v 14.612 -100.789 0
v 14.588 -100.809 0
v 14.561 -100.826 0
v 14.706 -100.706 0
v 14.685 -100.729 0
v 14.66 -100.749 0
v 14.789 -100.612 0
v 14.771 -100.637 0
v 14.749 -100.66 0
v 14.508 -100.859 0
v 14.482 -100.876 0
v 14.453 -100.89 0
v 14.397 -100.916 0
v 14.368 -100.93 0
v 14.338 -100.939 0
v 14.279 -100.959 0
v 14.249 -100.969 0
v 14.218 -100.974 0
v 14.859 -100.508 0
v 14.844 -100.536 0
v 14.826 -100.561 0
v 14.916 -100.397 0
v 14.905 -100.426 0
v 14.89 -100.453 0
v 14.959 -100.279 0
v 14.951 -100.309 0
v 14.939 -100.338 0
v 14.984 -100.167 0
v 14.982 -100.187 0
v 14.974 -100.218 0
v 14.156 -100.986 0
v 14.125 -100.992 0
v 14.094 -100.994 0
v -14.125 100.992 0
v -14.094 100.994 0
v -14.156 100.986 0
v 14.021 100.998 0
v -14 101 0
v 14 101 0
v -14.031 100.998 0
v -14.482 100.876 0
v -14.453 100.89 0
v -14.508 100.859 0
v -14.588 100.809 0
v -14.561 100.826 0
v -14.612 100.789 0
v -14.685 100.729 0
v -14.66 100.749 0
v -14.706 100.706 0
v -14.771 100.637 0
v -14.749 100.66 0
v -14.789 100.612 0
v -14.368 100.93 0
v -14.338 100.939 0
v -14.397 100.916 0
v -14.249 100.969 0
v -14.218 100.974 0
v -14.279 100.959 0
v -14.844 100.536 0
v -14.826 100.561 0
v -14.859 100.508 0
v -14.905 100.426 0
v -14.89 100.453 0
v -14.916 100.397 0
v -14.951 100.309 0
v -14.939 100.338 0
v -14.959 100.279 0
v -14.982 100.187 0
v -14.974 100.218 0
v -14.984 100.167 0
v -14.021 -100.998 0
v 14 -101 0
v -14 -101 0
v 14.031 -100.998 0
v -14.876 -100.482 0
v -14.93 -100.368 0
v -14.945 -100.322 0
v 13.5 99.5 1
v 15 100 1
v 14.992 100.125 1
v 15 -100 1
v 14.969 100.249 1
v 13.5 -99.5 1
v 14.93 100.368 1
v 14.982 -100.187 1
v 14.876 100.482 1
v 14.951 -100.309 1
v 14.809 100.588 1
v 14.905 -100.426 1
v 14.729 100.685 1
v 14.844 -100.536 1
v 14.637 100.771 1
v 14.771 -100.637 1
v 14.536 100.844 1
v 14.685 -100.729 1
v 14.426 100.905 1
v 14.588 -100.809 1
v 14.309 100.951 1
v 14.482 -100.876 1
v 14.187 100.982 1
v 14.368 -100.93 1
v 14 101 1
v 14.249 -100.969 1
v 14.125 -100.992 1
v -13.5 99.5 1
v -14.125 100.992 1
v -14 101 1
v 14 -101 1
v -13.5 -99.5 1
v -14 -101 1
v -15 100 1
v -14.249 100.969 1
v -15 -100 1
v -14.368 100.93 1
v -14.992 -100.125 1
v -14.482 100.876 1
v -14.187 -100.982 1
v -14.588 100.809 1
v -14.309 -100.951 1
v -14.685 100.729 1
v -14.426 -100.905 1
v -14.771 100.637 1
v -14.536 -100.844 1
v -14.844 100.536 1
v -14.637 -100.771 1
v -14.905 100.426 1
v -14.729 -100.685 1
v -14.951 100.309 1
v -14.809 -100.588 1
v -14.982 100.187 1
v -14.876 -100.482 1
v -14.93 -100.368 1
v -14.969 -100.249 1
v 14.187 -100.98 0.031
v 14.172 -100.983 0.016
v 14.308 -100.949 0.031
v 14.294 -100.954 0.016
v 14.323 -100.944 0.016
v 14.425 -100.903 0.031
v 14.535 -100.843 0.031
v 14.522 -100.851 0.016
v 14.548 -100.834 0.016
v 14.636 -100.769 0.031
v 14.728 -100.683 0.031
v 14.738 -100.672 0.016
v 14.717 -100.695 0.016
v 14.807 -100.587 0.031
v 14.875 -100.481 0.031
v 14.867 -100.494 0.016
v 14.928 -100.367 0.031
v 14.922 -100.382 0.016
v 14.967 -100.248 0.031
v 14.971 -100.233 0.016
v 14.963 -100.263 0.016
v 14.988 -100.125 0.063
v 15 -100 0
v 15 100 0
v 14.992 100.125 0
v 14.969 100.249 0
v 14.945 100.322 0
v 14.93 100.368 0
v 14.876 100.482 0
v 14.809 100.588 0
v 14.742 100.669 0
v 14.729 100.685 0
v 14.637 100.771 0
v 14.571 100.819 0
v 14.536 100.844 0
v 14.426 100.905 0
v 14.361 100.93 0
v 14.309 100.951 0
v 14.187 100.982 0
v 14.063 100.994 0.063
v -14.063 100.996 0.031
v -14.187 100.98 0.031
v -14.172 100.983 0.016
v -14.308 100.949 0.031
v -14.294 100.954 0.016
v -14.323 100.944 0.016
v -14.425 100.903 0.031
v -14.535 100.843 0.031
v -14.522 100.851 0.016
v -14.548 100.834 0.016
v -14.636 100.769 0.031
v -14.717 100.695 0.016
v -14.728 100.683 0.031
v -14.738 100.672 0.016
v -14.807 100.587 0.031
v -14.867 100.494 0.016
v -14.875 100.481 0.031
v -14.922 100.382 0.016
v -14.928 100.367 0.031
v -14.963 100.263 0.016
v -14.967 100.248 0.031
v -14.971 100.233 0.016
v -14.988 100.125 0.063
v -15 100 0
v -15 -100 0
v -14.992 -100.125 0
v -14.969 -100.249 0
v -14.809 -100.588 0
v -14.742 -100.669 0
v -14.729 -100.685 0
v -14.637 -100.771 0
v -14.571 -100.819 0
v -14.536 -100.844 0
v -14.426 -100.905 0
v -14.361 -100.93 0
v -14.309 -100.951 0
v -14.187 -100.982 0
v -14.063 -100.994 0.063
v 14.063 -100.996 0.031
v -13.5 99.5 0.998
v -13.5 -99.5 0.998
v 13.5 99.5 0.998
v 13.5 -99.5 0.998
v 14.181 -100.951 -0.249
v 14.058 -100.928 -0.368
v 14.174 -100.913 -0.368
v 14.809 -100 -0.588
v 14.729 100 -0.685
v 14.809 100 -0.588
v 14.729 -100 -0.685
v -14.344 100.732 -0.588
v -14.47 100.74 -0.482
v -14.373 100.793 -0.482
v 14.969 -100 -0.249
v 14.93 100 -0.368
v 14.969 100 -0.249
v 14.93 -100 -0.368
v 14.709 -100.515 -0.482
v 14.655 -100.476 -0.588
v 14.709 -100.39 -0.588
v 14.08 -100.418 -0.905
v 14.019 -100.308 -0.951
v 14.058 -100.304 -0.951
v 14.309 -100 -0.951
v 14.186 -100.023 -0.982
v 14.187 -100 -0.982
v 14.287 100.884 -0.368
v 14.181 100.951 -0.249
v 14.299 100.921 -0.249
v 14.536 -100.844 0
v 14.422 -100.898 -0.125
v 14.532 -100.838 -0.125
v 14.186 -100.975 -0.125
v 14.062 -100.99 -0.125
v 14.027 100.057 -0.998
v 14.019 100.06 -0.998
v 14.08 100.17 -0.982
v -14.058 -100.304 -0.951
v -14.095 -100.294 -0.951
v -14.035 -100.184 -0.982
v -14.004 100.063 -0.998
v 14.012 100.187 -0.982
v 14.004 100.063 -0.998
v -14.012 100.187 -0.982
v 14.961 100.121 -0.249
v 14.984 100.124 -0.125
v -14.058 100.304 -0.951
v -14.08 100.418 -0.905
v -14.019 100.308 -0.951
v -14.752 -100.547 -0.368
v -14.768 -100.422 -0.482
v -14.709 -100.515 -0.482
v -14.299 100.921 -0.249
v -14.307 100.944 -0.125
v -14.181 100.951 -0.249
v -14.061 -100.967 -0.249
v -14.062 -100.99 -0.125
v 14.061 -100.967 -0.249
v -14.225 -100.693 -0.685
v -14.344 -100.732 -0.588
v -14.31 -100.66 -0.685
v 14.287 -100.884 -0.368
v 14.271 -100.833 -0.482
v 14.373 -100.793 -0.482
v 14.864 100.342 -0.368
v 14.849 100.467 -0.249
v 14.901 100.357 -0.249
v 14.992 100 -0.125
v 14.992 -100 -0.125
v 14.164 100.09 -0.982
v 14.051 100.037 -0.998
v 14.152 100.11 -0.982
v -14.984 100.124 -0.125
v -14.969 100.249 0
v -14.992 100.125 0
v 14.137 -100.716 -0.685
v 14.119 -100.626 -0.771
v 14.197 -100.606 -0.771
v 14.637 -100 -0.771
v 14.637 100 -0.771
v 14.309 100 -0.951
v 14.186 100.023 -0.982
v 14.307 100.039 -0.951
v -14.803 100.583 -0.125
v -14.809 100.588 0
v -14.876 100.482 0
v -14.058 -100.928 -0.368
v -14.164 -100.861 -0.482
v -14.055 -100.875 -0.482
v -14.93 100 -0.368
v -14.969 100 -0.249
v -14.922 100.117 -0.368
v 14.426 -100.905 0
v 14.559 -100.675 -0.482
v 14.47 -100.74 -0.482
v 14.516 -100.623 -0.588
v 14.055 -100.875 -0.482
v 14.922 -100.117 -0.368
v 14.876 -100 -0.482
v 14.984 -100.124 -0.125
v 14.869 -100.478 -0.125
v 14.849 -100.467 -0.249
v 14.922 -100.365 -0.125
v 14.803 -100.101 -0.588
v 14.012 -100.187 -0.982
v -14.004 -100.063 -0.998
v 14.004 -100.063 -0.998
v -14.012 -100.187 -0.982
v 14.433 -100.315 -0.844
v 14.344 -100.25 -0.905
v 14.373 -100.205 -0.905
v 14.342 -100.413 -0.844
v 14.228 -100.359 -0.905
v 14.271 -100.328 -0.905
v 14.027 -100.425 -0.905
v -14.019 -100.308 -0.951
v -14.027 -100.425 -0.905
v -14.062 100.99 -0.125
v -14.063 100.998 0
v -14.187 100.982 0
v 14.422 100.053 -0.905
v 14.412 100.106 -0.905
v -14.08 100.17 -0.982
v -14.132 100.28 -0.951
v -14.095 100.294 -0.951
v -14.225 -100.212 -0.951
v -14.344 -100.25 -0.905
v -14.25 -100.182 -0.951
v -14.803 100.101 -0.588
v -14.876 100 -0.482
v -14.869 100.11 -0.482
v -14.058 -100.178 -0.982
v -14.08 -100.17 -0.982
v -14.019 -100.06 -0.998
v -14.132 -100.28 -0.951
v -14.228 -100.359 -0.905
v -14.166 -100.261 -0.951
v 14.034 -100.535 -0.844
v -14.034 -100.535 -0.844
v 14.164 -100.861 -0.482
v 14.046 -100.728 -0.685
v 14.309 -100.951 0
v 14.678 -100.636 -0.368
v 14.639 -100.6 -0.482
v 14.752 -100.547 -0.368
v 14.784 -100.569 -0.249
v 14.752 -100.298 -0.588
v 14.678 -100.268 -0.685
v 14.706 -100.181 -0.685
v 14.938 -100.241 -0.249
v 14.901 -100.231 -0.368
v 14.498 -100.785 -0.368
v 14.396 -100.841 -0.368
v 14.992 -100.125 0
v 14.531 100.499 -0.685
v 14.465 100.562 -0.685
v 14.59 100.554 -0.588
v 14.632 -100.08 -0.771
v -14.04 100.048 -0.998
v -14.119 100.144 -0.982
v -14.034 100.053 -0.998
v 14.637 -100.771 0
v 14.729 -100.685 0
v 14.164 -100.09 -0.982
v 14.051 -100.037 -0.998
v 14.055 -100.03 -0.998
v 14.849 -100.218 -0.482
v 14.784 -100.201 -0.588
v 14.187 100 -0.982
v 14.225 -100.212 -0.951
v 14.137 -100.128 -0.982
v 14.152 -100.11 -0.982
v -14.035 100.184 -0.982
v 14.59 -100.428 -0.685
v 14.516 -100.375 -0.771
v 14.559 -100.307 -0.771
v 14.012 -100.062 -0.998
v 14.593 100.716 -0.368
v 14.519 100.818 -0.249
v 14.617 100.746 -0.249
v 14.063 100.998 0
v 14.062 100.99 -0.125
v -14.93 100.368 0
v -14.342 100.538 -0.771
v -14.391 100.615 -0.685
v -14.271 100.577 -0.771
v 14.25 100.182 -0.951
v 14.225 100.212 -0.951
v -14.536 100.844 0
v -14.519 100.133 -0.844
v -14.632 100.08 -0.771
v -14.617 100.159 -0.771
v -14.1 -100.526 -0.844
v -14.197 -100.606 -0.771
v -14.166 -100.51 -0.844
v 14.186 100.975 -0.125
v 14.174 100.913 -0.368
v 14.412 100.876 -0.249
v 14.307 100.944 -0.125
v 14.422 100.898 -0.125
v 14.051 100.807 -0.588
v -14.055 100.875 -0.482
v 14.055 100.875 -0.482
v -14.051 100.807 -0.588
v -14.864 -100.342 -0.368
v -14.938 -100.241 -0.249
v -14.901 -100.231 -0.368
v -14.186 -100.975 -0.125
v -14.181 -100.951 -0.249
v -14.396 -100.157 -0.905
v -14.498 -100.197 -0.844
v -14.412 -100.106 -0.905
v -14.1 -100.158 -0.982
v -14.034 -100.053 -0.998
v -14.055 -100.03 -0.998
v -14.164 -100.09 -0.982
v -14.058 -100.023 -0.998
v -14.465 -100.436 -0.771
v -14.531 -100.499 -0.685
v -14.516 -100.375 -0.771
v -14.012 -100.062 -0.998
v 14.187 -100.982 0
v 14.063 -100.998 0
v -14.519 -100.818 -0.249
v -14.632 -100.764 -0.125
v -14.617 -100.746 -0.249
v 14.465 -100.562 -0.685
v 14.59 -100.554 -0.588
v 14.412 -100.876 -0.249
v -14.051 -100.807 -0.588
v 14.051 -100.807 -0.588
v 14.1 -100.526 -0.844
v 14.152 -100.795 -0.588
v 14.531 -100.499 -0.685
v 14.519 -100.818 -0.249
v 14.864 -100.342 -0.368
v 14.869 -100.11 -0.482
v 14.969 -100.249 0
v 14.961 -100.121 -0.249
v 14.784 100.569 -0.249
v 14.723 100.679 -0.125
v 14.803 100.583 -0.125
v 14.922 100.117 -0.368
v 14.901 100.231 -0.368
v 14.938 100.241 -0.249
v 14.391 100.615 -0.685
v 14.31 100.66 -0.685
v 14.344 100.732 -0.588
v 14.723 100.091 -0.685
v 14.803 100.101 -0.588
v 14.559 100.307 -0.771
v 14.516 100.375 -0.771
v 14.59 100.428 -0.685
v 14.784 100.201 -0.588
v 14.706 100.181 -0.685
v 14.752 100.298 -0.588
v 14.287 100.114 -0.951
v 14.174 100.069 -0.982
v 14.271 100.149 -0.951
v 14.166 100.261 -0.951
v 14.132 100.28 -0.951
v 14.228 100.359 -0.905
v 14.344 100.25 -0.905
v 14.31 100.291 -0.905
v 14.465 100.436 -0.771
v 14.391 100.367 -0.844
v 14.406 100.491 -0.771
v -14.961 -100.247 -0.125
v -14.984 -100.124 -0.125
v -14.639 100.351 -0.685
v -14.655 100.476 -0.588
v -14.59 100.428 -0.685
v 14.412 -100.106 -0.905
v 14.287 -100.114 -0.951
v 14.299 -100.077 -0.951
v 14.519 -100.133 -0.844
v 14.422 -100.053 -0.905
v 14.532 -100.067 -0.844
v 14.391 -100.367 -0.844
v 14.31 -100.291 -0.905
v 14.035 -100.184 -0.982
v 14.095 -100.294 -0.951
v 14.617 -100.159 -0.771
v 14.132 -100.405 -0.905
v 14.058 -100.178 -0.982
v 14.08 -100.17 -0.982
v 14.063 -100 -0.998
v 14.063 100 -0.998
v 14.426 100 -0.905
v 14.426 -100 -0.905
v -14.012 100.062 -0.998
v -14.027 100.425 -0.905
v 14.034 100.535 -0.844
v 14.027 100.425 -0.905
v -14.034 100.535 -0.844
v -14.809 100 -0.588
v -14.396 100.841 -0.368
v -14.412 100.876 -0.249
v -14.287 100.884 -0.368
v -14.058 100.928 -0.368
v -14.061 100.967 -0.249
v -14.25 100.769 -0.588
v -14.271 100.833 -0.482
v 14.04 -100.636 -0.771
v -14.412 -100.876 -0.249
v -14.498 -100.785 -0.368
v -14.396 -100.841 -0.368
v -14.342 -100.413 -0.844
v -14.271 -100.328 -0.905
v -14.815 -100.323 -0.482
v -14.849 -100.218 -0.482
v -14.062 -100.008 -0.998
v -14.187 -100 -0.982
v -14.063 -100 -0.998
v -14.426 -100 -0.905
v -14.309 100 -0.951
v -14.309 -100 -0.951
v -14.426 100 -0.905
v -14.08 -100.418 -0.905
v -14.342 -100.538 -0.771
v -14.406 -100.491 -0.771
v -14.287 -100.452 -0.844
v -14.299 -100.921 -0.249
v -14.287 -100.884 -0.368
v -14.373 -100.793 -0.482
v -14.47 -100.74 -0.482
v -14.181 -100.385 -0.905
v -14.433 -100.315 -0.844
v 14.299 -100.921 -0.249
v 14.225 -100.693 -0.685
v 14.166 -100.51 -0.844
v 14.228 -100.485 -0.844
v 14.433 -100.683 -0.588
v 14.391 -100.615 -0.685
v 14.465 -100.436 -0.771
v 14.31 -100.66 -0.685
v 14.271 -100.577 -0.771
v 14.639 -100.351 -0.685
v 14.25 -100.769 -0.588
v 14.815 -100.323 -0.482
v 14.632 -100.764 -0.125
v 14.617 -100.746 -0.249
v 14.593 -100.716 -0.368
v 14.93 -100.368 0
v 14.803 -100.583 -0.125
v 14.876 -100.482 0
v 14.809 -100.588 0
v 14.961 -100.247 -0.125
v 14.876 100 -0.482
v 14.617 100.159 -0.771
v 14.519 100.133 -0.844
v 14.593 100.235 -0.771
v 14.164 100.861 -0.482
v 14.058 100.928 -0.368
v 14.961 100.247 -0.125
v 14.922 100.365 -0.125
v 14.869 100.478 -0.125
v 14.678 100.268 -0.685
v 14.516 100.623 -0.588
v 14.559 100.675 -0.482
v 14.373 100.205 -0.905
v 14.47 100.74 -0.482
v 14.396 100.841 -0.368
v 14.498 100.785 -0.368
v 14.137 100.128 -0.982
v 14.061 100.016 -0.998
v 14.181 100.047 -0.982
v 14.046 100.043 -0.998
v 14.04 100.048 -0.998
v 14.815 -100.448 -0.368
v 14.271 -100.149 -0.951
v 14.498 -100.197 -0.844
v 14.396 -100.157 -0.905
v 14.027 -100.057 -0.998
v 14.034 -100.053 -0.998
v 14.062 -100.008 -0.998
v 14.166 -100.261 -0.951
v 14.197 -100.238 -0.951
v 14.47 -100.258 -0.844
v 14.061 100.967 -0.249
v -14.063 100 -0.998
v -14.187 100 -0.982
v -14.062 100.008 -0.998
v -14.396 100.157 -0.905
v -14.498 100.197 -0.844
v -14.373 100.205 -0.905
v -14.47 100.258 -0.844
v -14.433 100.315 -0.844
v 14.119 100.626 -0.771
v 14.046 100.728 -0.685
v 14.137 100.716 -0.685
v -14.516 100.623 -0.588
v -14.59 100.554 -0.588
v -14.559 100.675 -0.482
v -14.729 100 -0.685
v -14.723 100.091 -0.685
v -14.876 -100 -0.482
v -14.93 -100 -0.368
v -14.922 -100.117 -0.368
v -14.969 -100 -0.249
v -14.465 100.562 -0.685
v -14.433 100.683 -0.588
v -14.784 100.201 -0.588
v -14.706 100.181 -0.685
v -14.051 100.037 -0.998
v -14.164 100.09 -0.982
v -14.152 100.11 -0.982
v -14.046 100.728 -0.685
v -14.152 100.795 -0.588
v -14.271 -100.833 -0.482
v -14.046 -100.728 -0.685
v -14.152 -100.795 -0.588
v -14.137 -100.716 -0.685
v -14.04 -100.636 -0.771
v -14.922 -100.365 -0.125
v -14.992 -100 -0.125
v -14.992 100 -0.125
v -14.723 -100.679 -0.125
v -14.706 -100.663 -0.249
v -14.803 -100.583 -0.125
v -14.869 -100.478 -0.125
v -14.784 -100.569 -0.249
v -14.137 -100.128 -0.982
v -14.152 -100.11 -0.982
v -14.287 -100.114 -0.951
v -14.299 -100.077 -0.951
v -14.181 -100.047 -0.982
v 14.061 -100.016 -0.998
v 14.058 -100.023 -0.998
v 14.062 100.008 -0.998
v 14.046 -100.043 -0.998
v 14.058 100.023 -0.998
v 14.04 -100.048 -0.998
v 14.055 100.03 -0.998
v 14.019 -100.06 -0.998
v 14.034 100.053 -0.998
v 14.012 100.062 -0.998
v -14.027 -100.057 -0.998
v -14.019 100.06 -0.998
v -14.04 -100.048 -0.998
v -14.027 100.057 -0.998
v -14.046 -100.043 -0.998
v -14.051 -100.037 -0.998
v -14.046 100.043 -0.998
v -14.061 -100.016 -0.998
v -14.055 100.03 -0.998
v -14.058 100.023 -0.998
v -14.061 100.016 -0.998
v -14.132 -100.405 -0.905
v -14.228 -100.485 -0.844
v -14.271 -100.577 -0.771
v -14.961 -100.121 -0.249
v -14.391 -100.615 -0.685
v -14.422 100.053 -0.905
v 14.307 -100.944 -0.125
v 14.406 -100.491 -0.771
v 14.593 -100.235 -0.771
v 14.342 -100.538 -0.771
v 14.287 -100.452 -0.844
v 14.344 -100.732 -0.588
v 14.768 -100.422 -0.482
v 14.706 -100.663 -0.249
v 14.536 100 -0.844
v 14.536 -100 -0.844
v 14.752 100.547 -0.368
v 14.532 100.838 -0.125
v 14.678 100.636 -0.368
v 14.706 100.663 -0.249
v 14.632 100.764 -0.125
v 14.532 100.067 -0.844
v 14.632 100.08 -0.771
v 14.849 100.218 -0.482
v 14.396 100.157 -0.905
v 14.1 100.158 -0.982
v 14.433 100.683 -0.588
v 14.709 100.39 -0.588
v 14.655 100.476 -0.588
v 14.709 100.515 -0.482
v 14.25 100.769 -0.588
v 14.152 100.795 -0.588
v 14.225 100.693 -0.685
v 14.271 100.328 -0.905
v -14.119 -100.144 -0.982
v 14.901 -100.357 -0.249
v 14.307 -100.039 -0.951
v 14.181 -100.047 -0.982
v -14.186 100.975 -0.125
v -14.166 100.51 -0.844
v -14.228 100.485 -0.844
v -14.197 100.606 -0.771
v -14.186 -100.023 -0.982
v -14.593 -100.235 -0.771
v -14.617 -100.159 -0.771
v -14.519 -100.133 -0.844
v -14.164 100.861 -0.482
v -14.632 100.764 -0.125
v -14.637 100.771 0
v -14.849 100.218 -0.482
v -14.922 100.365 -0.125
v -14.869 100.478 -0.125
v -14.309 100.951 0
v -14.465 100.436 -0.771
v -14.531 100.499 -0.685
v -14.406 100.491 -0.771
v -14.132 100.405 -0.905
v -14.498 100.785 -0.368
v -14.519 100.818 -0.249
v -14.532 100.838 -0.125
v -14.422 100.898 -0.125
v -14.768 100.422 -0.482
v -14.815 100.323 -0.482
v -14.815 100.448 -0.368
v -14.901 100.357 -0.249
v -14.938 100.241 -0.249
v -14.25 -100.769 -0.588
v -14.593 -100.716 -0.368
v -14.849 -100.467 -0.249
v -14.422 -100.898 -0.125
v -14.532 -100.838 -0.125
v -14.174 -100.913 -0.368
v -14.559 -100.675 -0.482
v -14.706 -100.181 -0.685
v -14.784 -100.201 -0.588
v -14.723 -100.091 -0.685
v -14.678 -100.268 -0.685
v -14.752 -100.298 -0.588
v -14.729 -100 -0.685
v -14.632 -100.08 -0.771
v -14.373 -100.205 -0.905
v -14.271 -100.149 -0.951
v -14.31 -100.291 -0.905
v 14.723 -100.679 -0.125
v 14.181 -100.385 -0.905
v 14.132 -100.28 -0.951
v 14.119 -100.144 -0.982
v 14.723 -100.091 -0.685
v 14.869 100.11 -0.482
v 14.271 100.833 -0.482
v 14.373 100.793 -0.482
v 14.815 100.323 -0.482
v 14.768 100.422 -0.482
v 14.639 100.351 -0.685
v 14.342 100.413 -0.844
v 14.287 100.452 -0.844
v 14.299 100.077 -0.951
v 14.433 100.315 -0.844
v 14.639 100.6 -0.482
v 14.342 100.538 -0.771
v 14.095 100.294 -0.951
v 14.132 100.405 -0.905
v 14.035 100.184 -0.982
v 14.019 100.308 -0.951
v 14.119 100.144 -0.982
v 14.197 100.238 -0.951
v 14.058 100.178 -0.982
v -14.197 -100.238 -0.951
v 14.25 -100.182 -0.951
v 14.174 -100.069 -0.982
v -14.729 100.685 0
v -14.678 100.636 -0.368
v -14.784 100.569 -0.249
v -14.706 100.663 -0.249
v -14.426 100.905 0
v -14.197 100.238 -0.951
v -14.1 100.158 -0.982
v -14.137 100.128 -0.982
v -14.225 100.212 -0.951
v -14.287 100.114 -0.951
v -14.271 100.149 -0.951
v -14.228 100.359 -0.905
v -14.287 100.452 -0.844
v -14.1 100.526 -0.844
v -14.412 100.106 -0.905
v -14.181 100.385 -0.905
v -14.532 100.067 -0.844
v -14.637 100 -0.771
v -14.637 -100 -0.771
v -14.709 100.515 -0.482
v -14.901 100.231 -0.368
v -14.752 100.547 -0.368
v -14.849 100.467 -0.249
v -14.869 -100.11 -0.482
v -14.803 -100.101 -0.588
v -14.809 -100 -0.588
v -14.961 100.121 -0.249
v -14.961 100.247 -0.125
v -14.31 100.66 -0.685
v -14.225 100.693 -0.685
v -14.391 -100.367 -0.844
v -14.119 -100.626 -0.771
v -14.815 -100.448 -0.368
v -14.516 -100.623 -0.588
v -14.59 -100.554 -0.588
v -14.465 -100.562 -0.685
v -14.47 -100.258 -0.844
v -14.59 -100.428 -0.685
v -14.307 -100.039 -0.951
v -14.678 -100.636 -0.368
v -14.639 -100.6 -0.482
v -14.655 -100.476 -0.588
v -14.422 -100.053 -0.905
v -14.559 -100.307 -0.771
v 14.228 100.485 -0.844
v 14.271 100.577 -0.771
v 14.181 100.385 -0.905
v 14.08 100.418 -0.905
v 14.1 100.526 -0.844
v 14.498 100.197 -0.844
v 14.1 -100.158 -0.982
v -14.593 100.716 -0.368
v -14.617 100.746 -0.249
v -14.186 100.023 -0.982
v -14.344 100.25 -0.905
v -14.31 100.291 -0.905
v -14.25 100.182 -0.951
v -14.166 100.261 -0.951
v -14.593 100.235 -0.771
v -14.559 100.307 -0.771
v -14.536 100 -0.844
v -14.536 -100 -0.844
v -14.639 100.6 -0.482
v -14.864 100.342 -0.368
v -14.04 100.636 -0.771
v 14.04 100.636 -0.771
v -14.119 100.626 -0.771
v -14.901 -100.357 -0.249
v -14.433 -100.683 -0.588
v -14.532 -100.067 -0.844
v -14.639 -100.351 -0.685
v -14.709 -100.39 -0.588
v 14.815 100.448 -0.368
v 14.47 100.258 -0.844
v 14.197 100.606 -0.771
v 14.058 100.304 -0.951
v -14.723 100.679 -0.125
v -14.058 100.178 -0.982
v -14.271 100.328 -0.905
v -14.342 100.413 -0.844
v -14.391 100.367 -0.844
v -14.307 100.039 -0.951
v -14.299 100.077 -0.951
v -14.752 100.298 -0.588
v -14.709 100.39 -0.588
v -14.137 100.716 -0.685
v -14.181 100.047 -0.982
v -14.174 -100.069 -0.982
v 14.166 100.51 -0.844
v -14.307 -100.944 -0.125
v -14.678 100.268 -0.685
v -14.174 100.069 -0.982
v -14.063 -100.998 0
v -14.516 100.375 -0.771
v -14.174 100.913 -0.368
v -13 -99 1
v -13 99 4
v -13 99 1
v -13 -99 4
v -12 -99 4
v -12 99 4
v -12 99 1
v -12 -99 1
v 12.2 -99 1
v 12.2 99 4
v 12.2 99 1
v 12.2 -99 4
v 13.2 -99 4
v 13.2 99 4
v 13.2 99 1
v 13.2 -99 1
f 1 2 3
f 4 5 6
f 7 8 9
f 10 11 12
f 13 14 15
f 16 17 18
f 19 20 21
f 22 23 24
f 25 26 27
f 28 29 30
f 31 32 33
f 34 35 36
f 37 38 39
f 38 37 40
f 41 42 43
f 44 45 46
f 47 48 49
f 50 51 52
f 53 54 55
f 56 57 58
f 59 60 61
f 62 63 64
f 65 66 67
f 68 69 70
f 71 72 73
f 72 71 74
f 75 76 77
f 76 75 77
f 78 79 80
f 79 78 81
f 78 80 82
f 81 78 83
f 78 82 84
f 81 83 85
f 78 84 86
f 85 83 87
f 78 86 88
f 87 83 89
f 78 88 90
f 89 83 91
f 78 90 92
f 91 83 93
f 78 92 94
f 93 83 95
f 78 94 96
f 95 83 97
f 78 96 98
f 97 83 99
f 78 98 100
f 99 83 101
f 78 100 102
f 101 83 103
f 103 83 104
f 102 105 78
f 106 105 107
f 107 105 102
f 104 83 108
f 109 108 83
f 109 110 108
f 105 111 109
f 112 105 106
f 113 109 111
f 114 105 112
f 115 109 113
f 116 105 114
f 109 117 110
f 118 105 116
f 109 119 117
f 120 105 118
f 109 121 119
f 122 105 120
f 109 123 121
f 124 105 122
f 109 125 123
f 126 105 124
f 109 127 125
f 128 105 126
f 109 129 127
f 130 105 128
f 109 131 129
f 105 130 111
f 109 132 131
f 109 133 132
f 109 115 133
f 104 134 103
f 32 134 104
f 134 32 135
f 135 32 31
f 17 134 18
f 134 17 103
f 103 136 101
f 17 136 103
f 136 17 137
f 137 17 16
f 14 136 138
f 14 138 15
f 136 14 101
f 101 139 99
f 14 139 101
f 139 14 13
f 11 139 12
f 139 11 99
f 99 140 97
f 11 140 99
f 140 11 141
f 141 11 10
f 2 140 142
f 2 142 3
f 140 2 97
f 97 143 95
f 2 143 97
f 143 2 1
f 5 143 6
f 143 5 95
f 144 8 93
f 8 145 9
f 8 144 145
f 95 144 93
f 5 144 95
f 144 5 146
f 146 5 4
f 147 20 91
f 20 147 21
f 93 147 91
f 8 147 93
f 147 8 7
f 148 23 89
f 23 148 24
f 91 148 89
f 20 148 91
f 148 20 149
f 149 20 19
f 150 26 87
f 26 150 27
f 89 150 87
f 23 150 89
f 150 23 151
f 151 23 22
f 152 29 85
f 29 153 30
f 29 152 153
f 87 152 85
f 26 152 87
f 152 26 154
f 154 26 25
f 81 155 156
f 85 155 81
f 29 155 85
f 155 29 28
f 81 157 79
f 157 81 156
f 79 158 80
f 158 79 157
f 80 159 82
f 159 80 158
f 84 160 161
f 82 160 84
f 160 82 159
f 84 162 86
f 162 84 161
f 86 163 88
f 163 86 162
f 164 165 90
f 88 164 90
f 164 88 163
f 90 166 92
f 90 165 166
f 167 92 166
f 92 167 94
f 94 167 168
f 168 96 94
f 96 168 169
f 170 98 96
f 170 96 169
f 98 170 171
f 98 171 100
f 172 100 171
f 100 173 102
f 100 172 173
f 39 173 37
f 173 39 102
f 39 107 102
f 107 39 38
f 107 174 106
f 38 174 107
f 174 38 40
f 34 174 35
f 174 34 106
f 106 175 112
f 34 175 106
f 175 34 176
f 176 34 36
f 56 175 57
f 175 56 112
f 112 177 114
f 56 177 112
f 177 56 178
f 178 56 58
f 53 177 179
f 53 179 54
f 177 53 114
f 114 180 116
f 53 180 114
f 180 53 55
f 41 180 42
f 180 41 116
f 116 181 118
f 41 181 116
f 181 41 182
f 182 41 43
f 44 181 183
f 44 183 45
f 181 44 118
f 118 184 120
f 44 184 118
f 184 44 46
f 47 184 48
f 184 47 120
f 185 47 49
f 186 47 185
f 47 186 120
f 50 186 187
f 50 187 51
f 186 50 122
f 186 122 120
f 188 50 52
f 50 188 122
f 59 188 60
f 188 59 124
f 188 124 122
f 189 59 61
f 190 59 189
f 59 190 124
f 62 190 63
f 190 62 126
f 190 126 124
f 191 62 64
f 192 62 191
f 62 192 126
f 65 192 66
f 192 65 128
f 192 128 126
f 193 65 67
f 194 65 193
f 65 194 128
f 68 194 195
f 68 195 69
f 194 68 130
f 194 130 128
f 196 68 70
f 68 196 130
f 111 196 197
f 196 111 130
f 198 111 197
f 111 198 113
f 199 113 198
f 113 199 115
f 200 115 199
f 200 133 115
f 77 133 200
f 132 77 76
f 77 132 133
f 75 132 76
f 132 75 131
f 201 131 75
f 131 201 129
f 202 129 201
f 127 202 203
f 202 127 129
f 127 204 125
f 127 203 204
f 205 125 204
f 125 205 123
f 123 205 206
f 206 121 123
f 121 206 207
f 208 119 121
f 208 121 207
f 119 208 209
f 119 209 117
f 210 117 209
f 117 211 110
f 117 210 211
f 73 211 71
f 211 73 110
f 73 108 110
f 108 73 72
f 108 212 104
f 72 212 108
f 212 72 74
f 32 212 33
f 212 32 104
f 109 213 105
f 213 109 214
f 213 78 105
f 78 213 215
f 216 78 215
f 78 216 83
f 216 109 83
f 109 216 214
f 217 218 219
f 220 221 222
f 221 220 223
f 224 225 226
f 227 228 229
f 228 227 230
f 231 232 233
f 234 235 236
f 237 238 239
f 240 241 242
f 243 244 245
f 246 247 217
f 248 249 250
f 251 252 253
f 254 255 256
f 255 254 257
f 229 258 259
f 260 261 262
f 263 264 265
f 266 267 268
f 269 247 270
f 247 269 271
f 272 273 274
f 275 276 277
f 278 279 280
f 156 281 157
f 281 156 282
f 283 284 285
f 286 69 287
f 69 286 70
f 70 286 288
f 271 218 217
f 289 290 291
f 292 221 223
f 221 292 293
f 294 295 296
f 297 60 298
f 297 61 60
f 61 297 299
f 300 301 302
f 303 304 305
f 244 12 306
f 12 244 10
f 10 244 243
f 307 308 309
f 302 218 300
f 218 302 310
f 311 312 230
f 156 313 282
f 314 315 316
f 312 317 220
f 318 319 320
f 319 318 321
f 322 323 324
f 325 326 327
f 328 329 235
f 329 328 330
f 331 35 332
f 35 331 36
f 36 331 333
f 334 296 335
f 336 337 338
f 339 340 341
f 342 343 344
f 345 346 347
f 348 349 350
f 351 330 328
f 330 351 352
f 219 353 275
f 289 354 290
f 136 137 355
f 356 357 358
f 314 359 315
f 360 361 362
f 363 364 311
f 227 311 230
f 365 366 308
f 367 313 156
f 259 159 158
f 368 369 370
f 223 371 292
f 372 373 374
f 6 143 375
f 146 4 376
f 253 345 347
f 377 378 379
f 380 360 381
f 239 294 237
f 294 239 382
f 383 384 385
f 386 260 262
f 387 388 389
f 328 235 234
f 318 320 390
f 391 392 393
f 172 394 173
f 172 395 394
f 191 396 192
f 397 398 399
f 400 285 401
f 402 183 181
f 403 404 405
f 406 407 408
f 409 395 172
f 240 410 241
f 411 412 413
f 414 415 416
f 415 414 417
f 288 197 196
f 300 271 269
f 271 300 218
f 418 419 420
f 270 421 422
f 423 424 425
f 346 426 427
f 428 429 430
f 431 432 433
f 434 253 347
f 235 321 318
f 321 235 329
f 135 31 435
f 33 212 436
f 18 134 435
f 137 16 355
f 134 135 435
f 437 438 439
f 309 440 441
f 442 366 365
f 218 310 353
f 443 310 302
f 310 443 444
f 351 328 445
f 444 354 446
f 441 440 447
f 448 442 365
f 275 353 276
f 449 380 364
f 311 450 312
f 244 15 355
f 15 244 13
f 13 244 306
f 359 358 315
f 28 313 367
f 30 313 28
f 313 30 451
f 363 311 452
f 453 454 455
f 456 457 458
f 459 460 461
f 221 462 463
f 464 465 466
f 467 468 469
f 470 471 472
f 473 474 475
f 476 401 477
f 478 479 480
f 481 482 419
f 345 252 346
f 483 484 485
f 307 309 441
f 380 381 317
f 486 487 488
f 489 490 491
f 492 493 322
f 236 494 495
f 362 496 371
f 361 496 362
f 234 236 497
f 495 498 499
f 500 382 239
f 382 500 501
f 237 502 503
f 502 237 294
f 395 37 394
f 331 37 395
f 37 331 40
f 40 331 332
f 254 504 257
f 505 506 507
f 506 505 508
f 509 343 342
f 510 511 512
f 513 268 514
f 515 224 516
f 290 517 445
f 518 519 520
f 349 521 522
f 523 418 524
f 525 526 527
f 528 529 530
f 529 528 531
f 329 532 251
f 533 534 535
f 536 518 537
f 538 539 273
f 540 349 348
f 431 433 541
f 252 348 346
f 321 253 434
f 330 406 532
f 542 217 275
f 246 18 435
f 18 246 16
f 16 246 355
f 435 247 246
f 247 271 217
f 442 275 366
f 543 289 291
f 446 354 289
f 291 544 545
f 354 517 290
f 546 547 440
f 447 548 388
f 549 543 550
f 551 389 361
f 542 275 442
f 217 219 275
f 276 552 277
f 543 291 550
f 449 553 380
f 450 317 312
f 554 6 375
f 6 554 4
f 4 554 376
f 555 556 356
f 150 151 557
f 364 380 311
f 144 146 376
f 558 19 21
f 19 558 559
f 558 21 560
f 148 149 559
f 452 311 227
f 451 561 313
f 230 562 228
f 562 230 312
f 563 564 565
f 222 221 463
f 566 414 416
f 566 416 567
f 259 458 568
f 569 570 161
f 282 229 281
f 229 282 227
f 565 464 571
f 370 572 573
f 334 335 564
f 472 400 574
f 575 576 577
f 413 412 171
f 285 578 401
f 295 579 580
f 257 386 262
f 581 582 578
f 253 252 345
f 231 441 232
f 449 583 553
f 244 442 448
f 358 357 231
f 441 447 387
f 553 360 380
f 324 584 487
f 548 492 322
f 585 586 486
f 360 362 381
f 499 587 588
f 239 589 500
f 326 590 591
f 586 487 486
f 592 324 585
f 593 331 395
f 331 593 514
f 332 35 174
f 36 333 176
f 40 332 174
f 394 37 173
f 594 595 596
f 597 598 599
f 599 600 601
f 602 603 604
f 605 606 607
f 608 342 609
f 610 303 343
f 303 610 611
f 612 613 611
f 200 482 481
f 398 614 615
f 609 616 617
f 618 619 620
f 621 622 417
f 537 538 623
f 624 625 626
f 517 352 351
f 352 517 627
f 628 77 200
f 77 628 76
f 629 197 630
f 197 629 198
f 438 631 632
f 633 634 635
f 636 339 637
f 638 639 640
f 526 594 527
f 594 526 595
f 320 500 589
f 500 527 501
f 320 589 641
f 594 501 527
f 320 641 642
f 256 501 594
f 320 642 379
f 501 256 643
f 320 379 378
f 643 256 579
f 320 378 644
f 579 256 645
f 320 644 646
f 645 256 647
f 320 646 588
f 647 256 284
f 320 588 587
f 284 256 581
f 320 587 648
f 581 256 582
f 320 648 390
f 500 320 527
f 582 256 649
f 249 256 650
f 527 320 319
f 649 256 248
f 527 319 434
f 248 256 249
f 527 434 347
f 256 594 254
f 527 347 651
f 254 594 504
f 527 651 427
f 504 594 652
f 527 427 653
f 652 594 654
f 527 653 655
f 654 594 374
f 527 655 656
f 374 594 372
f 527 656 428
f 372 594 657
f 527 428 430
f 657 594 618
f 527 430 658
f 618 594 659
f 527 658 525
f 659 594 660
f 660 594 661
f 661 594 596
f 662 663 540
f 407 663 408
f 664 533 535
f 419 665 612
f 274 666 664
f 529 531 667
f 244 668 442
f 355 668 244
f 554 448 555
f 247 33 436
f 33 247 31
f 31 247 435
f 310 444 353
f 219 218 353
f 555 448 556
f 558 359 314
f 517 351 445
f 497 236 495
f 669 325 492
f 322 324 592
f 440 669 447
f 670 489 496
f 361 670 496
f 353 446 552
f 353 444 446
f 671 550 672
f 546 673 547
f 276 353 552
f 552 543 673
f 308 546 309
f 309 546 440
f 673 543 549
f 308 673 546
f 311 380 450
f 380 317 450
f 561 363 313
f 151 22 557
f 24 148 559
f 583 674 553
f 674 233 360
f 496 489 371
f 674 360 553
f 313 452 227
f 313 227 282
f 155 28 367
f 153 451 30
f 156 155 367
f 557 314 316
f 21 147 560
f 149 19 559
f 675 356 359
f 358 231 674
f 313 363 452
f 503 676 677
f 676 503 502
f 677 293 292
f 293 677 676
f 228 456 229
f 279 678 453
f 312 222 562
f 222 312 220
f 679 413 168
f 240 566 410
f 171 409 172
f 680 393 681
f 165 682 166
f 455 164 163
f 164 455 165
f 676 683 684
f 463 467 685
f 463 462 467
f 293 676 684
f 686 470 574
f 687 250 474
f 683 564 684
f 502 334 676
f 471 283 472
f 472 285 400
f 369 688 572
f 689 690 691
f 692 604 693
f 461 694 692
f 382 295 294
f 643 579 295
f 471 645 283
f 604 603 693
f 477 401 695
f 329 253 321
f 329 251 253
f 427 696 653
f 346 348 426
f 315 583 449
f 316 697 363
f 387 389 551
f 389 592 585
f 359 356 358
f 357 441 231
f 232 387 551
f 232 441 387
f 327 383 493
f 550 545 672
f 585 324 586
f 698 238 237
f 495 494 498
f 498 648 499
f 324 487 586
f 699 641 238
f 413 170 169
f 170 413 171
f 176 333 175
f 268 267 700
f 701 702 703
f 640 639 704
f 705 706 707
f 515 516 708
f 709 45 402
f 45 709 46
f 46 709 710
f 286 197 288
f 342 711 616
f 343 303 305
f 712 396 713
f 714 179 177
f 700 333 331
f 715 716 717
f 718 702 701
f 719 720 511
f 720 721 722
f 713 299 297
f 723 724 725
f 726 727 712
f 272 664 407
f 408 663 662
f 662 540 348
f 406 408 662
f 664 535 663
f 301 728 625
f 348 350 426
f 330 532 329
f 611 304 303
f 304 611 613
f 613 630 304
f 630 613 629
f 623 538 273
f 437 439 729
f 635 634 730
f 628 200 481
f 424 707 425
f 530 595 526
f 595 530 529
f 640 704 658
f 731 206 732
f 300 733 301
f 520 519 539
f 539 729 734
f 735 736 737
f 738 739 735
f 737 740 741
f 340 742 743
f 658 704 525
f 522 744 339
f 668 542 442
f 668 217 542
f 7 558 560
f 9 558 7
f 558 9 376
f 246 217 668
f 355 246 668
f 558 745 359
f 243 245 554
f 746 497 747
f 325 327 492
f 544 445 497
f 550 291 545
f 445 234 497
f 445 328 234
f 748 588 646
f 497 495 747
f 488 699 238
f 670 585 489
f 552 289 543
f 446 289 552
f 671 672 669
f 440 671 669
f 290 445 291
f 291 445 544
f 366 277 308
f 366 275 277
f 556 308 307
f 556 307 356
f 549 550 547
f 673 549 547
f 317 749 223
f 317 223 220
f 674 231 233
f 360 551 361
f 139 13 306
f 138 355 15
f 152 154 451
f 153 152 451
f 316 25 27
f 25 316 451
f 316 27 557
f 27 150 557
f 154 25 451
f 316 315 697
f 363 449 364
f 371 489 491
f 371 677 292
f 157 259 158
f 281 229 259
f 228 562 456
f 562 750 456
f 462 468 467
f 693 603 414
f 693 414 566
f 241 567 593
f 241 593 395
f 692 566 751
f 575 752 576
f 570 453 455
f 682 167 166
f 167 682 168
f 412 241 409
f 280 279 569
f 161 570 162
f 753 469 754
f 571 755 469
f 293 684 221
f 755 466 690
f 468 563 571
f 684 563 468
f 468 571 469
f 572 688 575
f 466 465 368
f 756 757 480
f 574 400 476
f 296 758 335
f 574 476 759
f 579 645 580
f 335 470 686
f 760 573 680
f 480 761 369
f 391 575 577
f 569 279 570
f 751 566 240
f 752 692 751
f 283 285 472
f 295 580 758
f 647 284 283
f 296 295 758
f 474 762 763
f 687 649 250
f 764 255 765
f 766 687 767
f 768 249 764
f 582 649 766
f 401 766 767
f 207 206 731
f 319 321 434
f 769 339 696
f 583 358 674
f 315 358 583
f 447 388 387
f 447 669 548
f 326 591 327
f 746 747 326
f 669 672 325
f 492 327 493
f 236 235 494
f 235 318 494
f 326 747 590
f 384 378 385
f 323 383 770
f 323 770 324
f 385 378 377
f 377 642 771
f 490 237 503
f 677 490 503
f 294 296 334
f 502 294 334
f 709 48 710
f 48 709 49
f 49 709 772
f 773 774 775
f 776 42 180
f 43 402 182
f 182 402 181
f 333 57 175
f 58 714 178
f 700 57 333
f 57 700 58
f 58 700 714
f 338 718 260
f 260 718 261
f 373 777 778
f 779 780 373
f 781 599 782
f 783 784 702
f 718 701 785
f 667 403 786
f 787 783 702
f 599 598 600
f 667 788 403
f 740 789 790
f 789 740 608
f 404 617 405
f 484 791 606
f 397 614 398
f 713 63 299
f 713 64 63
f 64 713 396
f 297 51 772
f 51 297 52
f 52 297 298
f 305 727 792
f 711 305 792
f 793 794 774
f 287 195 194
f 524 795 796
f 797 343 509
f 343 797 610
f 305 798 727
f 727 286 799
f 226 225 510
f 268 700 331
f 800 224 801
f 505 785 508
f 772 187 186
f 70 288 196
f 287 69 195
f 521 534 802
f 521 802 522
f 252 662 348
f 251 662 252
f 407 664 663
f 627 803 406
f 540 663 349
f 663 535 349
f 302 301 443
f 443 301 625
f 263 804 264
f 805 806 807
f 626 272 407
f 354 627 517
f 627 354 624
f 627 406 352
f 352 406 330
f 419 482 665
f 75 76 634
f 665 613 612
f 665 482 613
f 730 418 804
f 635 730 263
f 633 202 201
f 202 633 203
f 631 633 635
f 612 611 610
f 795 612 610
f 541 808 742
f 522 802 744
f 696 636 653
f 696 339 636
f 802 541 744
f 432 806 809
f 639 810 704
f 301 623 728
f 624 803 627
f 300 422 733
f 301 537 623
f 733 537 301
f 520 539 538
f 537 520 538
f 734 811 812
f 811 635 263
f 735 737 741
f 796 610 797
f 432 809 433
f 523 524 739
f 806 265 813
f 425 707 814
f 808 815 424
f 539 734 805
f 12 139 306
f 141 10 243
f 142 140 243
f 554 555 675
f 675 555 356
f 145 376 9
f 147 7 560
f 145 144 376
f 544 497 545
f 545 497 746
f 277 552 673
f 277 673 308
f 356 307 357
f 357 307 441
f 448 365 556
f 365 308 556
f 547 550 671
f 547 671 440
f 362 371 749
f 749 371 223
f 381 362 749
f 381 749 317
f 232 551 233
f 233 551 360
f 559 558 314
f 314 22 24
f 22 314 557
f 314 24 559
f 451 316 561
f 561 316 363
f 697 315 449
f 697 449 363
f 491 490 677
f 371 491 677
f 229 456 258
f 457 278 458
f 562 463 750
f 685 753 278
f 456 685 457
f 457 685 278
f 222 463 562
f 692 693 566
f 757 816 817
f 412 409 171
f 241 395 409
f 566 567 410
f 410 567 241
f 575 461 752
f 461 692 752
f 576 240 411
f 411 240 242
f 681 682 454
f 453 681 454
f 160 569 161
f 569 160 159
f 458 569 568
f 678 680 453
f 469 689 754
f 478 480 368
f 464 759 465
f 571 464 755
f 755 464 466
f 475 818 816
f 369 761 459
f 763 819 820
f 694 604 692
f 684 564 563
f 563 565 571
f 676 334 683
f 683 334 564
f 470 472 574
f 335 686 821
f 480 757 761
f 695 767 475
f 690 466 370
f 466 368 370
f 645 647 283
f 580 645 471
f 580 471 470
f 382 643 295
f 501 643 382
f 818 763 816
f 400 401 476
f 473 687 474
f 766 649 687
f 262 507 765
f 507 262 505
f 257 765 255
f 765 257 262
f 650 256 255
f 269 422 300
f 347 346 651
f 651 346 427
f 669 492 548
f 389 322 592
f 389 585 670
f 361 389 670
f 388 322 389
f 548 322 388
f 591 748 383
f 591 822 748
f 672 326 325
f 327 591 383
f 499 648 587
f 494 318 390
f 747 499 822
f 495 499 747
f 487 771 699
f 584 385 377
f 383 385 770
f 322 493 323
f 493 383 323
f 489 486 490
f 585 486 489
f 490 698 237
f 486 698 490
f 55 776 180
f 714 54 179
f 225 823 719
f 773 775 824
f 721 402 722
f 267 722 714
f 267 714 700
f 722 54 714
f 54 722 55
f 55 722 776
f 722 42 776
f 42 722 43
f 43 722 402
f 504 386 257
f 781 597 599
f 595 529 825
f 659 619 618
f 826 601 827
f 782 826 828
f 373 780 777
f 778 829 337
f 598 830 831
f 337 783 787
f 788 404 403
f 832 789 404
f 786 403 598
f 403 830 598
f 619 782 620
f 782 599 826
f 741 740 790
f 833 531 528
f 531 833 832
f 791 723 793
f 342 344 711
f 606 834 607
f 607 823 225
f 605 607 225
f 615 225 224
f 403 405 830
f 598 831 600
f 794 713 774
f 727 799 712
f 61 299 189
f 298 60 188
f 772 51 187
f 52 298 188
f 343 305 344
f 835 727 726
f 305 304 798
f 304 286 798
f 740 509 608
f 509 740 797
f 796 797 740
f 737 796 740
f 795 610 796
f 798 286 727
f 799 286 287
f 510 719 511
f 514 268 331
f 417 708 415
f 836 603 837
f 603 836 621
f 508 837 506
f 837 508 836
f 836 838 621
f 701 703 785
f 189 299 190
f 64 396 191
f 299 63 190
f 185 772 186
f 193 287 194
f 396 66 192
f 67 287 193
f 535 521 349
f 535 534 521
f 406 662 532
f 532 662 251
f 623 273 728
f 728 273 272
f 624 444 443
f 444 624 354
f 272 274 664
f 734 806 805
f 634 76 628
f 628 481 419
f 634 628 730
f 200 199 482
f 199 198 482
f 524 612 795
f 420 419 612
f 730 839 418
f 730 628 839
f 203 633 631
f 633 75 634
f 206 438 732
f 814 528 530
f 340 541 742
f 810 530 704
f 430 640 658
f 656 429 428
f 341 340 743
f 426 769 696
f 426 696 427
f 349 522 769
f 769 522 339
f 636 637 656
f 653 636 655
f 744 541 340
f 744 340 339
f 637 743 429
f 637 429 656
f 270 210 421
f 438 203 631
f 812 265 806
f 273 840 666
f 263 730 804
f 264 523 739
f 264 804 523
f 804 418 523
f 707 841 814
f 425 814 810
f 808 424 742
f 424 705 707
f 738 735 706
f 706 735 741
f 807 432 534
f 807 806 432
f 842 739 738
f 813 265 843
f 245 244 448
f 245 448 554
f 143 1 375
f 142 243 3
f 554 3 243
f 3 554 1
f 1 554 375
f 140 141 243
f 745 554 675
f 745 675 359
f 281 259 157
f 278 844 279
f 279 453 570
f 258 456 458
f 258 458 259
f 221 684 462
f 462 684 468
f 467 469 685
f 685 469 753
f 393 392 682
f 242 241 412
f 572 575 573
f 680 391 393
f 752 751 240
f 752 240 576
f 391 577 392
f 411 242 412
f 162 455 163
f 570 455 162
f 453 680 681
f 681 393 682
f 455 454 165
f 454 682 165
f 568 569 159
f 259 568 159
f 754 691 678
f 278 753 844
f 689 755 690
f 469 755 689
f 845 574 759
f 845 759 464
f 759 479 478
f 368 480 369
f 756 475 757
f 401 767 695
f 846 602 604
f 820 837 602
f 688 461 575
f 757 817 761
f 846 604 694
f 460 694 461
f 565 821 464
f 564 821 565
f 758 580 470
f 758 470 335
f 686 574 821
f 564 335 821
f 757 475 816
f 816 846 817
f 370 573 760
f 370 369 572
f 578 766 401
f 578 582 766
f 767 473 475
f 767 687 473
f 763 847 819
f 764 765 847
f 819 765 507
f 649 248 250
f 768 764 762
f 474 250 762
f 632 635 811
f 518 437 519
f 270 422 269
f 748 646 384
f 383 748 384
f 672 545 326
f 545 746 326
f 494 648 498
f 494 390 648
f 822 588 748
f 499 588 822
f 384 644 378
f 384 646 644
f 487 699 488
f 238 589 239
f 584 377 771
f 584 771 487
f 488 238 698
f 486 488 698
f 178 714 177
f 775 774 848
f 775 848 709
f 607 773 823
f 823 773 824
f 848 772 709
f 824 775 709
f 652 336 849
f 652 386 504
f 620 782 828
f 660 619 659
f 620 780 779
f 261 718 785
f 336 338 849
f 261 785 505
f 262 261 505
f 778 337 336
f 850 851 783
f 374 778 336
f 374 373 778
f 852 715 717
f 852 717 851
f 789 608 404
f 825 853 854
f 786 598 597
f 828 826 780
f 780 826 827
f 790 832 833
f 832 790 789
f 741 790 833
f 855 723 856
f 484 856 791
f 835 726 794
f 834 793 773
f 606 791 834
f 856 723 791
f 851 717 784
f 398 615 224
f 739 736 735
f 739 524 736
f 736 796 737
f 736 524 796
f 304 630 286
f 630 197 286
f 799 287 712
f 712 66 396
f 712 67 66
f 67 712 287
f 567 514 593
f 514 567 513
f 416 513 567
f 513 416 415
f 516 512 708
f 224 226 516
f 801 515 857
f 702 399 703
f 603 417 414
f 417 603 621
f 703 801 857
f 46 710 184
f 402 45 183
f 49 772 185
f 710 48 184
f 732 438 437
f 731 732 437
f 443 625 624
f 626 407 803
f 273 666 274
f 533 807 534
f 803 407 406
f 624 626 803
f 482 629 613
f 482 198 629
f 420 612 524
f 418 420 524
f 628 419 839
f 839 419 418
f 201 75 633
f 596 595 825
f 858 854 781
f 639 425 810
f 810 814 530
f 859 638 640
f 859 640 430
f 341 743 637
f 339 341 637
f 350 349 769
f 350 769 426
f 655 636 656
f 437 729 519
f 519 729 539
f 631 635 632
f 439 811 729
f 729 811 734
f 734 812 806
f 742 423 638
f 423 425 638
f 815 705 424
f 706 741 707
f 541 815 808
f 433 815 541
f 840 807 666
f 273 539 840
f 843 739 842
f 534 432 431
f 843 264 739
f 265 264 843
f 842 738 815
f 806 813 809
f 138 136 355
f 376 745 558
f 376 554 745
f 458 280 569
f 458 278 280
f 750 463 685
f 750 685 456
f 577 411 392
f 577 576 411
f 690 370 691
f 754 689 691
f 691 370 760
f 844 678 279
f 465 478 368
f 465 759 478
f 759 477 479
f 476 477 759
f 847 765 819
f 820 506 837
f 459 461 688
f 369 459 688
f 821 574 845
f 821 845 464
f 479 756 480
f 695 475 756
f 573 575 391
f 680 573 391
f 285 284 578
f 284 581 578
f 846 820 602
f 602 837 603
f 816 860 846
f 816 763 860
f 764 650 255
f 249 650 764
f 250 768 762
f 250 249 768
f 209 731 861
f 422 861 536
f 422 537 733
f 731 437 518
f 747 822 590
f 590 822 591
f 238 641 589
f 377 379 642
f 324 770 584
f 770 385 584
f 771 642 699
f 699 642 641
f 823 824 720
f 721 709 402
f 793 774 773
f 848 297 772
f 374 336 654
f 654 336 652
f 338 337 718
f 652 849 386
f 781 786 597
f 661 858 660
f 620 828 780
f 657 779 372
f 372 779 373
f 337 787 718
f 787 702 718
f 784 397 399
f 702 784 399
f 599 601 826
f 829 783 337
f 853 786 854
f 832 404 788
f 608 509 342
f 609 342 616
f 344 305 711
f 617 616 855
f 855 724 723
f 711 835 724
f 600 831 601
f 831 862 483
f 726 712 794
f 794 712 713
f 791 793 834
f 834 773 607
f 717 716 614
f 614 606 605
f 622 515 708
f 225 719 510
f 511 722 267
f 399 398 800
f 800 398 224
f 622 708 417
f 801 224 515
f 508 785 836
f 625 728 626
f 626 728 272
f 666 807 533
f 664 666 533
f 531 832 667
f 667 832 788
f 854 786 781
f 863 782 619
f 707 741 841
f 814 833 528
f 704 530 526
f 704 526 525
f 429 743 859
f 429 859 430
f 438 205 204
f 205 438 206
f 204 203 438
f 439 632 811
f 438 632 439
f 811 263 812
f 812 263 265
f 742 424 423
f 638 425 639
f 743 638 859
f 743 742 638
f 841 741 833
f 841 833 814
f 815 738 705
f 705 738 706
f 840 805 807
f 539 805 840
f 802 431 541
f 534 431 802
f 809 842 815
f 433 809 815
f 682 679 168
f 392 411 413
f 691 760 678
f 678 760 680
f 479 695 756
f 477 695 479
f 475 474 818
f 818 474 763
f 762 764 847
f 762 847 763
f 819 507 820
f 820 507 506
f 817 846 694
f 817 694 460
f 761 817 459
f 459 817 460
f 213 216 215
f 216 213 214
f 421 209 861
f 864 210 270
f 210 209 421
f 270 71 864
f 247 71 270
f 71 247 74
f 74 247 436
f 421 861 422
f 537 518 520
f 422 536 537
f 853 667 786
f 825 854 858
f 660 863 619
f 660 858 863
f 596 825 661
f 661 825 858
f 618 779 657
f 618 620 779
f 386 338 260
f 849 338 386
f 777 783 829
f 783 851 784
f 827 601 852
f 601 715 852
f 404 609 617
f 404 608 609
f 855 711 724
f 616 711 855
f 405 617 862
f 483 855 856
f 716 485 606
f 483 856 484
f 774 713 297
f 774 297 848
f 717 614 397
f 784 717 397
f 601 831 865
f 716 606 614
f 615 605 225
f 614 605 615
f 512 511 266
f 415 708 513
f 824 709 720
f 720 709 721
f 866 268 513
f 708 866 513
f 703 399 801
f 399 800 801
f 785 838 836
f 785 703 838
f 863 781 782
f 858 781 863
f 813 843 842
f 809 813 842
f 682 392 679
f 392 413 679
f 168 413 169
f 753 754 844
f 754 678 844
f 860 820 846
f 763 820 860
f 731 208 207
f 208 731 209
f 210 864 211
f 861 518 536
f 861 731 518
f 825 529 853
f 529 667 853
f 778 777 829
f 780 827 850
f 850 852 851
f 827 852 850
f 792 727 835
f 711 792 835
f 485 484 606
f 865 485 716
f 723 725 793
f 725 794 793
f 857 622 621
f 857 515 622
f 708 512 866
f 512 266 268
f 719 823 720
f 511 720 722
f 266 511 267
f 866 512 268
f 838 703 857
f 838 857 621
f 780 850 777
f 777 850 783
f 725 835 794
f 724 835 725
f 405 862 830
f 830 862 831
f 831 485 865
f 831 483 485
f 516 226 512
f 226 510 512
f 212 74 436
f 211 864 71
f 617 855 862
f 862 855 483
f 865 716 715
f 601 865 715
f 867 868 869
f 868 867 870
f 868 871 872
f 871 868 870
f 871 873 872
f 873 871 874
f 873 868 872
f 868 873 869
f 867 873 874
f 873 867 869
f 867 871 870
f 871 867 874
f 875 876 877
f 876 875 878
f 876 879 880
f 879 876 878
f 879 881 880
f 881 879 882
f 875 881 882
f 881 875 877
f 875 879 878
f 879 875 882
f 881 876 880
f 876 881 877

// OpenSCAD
$fn=50;
BOX_W = 28;  // Box Width
BOX_L = 200; // Box Length
BOX_H = 1.0; // Box Height
CORNER_RADIUS = 1.0; // Radius of corners
WALL = 1.0;// Wall Thickness

difference() {
  union() {
  linear_extrude( BOX_H )
    difference(){
      offset(r=CORNER_RADIUS) square( [BOX_W, BOX_L], center=true );
      offset( r= CORNER_RADIUS - WALL ) square( [BOX_W-WALL, BOX_L-WALL],   center=true );
    };

  coordinates = [ [0,0],[0,BOX_L],[BOX_W,BOX_L],[BOX_W,0] ];

  translate ( [-BOX_W/2, -BOX_L/2] )
    hull()
    for (i = coordinates)
      translate(i) sphere(CORNER_RADIUS);

    translate([BOX_W/-2+WALL,BOX_L/-2+1,WALL]) cube([WALL,BOX_L-(WALL*2),3]);

    translate([BOX_W/2-WALL*1.8,BOX_L/-2+1,WALL]) cube([WALL,BOX_L-(WALL*2),3]);

  }
}
